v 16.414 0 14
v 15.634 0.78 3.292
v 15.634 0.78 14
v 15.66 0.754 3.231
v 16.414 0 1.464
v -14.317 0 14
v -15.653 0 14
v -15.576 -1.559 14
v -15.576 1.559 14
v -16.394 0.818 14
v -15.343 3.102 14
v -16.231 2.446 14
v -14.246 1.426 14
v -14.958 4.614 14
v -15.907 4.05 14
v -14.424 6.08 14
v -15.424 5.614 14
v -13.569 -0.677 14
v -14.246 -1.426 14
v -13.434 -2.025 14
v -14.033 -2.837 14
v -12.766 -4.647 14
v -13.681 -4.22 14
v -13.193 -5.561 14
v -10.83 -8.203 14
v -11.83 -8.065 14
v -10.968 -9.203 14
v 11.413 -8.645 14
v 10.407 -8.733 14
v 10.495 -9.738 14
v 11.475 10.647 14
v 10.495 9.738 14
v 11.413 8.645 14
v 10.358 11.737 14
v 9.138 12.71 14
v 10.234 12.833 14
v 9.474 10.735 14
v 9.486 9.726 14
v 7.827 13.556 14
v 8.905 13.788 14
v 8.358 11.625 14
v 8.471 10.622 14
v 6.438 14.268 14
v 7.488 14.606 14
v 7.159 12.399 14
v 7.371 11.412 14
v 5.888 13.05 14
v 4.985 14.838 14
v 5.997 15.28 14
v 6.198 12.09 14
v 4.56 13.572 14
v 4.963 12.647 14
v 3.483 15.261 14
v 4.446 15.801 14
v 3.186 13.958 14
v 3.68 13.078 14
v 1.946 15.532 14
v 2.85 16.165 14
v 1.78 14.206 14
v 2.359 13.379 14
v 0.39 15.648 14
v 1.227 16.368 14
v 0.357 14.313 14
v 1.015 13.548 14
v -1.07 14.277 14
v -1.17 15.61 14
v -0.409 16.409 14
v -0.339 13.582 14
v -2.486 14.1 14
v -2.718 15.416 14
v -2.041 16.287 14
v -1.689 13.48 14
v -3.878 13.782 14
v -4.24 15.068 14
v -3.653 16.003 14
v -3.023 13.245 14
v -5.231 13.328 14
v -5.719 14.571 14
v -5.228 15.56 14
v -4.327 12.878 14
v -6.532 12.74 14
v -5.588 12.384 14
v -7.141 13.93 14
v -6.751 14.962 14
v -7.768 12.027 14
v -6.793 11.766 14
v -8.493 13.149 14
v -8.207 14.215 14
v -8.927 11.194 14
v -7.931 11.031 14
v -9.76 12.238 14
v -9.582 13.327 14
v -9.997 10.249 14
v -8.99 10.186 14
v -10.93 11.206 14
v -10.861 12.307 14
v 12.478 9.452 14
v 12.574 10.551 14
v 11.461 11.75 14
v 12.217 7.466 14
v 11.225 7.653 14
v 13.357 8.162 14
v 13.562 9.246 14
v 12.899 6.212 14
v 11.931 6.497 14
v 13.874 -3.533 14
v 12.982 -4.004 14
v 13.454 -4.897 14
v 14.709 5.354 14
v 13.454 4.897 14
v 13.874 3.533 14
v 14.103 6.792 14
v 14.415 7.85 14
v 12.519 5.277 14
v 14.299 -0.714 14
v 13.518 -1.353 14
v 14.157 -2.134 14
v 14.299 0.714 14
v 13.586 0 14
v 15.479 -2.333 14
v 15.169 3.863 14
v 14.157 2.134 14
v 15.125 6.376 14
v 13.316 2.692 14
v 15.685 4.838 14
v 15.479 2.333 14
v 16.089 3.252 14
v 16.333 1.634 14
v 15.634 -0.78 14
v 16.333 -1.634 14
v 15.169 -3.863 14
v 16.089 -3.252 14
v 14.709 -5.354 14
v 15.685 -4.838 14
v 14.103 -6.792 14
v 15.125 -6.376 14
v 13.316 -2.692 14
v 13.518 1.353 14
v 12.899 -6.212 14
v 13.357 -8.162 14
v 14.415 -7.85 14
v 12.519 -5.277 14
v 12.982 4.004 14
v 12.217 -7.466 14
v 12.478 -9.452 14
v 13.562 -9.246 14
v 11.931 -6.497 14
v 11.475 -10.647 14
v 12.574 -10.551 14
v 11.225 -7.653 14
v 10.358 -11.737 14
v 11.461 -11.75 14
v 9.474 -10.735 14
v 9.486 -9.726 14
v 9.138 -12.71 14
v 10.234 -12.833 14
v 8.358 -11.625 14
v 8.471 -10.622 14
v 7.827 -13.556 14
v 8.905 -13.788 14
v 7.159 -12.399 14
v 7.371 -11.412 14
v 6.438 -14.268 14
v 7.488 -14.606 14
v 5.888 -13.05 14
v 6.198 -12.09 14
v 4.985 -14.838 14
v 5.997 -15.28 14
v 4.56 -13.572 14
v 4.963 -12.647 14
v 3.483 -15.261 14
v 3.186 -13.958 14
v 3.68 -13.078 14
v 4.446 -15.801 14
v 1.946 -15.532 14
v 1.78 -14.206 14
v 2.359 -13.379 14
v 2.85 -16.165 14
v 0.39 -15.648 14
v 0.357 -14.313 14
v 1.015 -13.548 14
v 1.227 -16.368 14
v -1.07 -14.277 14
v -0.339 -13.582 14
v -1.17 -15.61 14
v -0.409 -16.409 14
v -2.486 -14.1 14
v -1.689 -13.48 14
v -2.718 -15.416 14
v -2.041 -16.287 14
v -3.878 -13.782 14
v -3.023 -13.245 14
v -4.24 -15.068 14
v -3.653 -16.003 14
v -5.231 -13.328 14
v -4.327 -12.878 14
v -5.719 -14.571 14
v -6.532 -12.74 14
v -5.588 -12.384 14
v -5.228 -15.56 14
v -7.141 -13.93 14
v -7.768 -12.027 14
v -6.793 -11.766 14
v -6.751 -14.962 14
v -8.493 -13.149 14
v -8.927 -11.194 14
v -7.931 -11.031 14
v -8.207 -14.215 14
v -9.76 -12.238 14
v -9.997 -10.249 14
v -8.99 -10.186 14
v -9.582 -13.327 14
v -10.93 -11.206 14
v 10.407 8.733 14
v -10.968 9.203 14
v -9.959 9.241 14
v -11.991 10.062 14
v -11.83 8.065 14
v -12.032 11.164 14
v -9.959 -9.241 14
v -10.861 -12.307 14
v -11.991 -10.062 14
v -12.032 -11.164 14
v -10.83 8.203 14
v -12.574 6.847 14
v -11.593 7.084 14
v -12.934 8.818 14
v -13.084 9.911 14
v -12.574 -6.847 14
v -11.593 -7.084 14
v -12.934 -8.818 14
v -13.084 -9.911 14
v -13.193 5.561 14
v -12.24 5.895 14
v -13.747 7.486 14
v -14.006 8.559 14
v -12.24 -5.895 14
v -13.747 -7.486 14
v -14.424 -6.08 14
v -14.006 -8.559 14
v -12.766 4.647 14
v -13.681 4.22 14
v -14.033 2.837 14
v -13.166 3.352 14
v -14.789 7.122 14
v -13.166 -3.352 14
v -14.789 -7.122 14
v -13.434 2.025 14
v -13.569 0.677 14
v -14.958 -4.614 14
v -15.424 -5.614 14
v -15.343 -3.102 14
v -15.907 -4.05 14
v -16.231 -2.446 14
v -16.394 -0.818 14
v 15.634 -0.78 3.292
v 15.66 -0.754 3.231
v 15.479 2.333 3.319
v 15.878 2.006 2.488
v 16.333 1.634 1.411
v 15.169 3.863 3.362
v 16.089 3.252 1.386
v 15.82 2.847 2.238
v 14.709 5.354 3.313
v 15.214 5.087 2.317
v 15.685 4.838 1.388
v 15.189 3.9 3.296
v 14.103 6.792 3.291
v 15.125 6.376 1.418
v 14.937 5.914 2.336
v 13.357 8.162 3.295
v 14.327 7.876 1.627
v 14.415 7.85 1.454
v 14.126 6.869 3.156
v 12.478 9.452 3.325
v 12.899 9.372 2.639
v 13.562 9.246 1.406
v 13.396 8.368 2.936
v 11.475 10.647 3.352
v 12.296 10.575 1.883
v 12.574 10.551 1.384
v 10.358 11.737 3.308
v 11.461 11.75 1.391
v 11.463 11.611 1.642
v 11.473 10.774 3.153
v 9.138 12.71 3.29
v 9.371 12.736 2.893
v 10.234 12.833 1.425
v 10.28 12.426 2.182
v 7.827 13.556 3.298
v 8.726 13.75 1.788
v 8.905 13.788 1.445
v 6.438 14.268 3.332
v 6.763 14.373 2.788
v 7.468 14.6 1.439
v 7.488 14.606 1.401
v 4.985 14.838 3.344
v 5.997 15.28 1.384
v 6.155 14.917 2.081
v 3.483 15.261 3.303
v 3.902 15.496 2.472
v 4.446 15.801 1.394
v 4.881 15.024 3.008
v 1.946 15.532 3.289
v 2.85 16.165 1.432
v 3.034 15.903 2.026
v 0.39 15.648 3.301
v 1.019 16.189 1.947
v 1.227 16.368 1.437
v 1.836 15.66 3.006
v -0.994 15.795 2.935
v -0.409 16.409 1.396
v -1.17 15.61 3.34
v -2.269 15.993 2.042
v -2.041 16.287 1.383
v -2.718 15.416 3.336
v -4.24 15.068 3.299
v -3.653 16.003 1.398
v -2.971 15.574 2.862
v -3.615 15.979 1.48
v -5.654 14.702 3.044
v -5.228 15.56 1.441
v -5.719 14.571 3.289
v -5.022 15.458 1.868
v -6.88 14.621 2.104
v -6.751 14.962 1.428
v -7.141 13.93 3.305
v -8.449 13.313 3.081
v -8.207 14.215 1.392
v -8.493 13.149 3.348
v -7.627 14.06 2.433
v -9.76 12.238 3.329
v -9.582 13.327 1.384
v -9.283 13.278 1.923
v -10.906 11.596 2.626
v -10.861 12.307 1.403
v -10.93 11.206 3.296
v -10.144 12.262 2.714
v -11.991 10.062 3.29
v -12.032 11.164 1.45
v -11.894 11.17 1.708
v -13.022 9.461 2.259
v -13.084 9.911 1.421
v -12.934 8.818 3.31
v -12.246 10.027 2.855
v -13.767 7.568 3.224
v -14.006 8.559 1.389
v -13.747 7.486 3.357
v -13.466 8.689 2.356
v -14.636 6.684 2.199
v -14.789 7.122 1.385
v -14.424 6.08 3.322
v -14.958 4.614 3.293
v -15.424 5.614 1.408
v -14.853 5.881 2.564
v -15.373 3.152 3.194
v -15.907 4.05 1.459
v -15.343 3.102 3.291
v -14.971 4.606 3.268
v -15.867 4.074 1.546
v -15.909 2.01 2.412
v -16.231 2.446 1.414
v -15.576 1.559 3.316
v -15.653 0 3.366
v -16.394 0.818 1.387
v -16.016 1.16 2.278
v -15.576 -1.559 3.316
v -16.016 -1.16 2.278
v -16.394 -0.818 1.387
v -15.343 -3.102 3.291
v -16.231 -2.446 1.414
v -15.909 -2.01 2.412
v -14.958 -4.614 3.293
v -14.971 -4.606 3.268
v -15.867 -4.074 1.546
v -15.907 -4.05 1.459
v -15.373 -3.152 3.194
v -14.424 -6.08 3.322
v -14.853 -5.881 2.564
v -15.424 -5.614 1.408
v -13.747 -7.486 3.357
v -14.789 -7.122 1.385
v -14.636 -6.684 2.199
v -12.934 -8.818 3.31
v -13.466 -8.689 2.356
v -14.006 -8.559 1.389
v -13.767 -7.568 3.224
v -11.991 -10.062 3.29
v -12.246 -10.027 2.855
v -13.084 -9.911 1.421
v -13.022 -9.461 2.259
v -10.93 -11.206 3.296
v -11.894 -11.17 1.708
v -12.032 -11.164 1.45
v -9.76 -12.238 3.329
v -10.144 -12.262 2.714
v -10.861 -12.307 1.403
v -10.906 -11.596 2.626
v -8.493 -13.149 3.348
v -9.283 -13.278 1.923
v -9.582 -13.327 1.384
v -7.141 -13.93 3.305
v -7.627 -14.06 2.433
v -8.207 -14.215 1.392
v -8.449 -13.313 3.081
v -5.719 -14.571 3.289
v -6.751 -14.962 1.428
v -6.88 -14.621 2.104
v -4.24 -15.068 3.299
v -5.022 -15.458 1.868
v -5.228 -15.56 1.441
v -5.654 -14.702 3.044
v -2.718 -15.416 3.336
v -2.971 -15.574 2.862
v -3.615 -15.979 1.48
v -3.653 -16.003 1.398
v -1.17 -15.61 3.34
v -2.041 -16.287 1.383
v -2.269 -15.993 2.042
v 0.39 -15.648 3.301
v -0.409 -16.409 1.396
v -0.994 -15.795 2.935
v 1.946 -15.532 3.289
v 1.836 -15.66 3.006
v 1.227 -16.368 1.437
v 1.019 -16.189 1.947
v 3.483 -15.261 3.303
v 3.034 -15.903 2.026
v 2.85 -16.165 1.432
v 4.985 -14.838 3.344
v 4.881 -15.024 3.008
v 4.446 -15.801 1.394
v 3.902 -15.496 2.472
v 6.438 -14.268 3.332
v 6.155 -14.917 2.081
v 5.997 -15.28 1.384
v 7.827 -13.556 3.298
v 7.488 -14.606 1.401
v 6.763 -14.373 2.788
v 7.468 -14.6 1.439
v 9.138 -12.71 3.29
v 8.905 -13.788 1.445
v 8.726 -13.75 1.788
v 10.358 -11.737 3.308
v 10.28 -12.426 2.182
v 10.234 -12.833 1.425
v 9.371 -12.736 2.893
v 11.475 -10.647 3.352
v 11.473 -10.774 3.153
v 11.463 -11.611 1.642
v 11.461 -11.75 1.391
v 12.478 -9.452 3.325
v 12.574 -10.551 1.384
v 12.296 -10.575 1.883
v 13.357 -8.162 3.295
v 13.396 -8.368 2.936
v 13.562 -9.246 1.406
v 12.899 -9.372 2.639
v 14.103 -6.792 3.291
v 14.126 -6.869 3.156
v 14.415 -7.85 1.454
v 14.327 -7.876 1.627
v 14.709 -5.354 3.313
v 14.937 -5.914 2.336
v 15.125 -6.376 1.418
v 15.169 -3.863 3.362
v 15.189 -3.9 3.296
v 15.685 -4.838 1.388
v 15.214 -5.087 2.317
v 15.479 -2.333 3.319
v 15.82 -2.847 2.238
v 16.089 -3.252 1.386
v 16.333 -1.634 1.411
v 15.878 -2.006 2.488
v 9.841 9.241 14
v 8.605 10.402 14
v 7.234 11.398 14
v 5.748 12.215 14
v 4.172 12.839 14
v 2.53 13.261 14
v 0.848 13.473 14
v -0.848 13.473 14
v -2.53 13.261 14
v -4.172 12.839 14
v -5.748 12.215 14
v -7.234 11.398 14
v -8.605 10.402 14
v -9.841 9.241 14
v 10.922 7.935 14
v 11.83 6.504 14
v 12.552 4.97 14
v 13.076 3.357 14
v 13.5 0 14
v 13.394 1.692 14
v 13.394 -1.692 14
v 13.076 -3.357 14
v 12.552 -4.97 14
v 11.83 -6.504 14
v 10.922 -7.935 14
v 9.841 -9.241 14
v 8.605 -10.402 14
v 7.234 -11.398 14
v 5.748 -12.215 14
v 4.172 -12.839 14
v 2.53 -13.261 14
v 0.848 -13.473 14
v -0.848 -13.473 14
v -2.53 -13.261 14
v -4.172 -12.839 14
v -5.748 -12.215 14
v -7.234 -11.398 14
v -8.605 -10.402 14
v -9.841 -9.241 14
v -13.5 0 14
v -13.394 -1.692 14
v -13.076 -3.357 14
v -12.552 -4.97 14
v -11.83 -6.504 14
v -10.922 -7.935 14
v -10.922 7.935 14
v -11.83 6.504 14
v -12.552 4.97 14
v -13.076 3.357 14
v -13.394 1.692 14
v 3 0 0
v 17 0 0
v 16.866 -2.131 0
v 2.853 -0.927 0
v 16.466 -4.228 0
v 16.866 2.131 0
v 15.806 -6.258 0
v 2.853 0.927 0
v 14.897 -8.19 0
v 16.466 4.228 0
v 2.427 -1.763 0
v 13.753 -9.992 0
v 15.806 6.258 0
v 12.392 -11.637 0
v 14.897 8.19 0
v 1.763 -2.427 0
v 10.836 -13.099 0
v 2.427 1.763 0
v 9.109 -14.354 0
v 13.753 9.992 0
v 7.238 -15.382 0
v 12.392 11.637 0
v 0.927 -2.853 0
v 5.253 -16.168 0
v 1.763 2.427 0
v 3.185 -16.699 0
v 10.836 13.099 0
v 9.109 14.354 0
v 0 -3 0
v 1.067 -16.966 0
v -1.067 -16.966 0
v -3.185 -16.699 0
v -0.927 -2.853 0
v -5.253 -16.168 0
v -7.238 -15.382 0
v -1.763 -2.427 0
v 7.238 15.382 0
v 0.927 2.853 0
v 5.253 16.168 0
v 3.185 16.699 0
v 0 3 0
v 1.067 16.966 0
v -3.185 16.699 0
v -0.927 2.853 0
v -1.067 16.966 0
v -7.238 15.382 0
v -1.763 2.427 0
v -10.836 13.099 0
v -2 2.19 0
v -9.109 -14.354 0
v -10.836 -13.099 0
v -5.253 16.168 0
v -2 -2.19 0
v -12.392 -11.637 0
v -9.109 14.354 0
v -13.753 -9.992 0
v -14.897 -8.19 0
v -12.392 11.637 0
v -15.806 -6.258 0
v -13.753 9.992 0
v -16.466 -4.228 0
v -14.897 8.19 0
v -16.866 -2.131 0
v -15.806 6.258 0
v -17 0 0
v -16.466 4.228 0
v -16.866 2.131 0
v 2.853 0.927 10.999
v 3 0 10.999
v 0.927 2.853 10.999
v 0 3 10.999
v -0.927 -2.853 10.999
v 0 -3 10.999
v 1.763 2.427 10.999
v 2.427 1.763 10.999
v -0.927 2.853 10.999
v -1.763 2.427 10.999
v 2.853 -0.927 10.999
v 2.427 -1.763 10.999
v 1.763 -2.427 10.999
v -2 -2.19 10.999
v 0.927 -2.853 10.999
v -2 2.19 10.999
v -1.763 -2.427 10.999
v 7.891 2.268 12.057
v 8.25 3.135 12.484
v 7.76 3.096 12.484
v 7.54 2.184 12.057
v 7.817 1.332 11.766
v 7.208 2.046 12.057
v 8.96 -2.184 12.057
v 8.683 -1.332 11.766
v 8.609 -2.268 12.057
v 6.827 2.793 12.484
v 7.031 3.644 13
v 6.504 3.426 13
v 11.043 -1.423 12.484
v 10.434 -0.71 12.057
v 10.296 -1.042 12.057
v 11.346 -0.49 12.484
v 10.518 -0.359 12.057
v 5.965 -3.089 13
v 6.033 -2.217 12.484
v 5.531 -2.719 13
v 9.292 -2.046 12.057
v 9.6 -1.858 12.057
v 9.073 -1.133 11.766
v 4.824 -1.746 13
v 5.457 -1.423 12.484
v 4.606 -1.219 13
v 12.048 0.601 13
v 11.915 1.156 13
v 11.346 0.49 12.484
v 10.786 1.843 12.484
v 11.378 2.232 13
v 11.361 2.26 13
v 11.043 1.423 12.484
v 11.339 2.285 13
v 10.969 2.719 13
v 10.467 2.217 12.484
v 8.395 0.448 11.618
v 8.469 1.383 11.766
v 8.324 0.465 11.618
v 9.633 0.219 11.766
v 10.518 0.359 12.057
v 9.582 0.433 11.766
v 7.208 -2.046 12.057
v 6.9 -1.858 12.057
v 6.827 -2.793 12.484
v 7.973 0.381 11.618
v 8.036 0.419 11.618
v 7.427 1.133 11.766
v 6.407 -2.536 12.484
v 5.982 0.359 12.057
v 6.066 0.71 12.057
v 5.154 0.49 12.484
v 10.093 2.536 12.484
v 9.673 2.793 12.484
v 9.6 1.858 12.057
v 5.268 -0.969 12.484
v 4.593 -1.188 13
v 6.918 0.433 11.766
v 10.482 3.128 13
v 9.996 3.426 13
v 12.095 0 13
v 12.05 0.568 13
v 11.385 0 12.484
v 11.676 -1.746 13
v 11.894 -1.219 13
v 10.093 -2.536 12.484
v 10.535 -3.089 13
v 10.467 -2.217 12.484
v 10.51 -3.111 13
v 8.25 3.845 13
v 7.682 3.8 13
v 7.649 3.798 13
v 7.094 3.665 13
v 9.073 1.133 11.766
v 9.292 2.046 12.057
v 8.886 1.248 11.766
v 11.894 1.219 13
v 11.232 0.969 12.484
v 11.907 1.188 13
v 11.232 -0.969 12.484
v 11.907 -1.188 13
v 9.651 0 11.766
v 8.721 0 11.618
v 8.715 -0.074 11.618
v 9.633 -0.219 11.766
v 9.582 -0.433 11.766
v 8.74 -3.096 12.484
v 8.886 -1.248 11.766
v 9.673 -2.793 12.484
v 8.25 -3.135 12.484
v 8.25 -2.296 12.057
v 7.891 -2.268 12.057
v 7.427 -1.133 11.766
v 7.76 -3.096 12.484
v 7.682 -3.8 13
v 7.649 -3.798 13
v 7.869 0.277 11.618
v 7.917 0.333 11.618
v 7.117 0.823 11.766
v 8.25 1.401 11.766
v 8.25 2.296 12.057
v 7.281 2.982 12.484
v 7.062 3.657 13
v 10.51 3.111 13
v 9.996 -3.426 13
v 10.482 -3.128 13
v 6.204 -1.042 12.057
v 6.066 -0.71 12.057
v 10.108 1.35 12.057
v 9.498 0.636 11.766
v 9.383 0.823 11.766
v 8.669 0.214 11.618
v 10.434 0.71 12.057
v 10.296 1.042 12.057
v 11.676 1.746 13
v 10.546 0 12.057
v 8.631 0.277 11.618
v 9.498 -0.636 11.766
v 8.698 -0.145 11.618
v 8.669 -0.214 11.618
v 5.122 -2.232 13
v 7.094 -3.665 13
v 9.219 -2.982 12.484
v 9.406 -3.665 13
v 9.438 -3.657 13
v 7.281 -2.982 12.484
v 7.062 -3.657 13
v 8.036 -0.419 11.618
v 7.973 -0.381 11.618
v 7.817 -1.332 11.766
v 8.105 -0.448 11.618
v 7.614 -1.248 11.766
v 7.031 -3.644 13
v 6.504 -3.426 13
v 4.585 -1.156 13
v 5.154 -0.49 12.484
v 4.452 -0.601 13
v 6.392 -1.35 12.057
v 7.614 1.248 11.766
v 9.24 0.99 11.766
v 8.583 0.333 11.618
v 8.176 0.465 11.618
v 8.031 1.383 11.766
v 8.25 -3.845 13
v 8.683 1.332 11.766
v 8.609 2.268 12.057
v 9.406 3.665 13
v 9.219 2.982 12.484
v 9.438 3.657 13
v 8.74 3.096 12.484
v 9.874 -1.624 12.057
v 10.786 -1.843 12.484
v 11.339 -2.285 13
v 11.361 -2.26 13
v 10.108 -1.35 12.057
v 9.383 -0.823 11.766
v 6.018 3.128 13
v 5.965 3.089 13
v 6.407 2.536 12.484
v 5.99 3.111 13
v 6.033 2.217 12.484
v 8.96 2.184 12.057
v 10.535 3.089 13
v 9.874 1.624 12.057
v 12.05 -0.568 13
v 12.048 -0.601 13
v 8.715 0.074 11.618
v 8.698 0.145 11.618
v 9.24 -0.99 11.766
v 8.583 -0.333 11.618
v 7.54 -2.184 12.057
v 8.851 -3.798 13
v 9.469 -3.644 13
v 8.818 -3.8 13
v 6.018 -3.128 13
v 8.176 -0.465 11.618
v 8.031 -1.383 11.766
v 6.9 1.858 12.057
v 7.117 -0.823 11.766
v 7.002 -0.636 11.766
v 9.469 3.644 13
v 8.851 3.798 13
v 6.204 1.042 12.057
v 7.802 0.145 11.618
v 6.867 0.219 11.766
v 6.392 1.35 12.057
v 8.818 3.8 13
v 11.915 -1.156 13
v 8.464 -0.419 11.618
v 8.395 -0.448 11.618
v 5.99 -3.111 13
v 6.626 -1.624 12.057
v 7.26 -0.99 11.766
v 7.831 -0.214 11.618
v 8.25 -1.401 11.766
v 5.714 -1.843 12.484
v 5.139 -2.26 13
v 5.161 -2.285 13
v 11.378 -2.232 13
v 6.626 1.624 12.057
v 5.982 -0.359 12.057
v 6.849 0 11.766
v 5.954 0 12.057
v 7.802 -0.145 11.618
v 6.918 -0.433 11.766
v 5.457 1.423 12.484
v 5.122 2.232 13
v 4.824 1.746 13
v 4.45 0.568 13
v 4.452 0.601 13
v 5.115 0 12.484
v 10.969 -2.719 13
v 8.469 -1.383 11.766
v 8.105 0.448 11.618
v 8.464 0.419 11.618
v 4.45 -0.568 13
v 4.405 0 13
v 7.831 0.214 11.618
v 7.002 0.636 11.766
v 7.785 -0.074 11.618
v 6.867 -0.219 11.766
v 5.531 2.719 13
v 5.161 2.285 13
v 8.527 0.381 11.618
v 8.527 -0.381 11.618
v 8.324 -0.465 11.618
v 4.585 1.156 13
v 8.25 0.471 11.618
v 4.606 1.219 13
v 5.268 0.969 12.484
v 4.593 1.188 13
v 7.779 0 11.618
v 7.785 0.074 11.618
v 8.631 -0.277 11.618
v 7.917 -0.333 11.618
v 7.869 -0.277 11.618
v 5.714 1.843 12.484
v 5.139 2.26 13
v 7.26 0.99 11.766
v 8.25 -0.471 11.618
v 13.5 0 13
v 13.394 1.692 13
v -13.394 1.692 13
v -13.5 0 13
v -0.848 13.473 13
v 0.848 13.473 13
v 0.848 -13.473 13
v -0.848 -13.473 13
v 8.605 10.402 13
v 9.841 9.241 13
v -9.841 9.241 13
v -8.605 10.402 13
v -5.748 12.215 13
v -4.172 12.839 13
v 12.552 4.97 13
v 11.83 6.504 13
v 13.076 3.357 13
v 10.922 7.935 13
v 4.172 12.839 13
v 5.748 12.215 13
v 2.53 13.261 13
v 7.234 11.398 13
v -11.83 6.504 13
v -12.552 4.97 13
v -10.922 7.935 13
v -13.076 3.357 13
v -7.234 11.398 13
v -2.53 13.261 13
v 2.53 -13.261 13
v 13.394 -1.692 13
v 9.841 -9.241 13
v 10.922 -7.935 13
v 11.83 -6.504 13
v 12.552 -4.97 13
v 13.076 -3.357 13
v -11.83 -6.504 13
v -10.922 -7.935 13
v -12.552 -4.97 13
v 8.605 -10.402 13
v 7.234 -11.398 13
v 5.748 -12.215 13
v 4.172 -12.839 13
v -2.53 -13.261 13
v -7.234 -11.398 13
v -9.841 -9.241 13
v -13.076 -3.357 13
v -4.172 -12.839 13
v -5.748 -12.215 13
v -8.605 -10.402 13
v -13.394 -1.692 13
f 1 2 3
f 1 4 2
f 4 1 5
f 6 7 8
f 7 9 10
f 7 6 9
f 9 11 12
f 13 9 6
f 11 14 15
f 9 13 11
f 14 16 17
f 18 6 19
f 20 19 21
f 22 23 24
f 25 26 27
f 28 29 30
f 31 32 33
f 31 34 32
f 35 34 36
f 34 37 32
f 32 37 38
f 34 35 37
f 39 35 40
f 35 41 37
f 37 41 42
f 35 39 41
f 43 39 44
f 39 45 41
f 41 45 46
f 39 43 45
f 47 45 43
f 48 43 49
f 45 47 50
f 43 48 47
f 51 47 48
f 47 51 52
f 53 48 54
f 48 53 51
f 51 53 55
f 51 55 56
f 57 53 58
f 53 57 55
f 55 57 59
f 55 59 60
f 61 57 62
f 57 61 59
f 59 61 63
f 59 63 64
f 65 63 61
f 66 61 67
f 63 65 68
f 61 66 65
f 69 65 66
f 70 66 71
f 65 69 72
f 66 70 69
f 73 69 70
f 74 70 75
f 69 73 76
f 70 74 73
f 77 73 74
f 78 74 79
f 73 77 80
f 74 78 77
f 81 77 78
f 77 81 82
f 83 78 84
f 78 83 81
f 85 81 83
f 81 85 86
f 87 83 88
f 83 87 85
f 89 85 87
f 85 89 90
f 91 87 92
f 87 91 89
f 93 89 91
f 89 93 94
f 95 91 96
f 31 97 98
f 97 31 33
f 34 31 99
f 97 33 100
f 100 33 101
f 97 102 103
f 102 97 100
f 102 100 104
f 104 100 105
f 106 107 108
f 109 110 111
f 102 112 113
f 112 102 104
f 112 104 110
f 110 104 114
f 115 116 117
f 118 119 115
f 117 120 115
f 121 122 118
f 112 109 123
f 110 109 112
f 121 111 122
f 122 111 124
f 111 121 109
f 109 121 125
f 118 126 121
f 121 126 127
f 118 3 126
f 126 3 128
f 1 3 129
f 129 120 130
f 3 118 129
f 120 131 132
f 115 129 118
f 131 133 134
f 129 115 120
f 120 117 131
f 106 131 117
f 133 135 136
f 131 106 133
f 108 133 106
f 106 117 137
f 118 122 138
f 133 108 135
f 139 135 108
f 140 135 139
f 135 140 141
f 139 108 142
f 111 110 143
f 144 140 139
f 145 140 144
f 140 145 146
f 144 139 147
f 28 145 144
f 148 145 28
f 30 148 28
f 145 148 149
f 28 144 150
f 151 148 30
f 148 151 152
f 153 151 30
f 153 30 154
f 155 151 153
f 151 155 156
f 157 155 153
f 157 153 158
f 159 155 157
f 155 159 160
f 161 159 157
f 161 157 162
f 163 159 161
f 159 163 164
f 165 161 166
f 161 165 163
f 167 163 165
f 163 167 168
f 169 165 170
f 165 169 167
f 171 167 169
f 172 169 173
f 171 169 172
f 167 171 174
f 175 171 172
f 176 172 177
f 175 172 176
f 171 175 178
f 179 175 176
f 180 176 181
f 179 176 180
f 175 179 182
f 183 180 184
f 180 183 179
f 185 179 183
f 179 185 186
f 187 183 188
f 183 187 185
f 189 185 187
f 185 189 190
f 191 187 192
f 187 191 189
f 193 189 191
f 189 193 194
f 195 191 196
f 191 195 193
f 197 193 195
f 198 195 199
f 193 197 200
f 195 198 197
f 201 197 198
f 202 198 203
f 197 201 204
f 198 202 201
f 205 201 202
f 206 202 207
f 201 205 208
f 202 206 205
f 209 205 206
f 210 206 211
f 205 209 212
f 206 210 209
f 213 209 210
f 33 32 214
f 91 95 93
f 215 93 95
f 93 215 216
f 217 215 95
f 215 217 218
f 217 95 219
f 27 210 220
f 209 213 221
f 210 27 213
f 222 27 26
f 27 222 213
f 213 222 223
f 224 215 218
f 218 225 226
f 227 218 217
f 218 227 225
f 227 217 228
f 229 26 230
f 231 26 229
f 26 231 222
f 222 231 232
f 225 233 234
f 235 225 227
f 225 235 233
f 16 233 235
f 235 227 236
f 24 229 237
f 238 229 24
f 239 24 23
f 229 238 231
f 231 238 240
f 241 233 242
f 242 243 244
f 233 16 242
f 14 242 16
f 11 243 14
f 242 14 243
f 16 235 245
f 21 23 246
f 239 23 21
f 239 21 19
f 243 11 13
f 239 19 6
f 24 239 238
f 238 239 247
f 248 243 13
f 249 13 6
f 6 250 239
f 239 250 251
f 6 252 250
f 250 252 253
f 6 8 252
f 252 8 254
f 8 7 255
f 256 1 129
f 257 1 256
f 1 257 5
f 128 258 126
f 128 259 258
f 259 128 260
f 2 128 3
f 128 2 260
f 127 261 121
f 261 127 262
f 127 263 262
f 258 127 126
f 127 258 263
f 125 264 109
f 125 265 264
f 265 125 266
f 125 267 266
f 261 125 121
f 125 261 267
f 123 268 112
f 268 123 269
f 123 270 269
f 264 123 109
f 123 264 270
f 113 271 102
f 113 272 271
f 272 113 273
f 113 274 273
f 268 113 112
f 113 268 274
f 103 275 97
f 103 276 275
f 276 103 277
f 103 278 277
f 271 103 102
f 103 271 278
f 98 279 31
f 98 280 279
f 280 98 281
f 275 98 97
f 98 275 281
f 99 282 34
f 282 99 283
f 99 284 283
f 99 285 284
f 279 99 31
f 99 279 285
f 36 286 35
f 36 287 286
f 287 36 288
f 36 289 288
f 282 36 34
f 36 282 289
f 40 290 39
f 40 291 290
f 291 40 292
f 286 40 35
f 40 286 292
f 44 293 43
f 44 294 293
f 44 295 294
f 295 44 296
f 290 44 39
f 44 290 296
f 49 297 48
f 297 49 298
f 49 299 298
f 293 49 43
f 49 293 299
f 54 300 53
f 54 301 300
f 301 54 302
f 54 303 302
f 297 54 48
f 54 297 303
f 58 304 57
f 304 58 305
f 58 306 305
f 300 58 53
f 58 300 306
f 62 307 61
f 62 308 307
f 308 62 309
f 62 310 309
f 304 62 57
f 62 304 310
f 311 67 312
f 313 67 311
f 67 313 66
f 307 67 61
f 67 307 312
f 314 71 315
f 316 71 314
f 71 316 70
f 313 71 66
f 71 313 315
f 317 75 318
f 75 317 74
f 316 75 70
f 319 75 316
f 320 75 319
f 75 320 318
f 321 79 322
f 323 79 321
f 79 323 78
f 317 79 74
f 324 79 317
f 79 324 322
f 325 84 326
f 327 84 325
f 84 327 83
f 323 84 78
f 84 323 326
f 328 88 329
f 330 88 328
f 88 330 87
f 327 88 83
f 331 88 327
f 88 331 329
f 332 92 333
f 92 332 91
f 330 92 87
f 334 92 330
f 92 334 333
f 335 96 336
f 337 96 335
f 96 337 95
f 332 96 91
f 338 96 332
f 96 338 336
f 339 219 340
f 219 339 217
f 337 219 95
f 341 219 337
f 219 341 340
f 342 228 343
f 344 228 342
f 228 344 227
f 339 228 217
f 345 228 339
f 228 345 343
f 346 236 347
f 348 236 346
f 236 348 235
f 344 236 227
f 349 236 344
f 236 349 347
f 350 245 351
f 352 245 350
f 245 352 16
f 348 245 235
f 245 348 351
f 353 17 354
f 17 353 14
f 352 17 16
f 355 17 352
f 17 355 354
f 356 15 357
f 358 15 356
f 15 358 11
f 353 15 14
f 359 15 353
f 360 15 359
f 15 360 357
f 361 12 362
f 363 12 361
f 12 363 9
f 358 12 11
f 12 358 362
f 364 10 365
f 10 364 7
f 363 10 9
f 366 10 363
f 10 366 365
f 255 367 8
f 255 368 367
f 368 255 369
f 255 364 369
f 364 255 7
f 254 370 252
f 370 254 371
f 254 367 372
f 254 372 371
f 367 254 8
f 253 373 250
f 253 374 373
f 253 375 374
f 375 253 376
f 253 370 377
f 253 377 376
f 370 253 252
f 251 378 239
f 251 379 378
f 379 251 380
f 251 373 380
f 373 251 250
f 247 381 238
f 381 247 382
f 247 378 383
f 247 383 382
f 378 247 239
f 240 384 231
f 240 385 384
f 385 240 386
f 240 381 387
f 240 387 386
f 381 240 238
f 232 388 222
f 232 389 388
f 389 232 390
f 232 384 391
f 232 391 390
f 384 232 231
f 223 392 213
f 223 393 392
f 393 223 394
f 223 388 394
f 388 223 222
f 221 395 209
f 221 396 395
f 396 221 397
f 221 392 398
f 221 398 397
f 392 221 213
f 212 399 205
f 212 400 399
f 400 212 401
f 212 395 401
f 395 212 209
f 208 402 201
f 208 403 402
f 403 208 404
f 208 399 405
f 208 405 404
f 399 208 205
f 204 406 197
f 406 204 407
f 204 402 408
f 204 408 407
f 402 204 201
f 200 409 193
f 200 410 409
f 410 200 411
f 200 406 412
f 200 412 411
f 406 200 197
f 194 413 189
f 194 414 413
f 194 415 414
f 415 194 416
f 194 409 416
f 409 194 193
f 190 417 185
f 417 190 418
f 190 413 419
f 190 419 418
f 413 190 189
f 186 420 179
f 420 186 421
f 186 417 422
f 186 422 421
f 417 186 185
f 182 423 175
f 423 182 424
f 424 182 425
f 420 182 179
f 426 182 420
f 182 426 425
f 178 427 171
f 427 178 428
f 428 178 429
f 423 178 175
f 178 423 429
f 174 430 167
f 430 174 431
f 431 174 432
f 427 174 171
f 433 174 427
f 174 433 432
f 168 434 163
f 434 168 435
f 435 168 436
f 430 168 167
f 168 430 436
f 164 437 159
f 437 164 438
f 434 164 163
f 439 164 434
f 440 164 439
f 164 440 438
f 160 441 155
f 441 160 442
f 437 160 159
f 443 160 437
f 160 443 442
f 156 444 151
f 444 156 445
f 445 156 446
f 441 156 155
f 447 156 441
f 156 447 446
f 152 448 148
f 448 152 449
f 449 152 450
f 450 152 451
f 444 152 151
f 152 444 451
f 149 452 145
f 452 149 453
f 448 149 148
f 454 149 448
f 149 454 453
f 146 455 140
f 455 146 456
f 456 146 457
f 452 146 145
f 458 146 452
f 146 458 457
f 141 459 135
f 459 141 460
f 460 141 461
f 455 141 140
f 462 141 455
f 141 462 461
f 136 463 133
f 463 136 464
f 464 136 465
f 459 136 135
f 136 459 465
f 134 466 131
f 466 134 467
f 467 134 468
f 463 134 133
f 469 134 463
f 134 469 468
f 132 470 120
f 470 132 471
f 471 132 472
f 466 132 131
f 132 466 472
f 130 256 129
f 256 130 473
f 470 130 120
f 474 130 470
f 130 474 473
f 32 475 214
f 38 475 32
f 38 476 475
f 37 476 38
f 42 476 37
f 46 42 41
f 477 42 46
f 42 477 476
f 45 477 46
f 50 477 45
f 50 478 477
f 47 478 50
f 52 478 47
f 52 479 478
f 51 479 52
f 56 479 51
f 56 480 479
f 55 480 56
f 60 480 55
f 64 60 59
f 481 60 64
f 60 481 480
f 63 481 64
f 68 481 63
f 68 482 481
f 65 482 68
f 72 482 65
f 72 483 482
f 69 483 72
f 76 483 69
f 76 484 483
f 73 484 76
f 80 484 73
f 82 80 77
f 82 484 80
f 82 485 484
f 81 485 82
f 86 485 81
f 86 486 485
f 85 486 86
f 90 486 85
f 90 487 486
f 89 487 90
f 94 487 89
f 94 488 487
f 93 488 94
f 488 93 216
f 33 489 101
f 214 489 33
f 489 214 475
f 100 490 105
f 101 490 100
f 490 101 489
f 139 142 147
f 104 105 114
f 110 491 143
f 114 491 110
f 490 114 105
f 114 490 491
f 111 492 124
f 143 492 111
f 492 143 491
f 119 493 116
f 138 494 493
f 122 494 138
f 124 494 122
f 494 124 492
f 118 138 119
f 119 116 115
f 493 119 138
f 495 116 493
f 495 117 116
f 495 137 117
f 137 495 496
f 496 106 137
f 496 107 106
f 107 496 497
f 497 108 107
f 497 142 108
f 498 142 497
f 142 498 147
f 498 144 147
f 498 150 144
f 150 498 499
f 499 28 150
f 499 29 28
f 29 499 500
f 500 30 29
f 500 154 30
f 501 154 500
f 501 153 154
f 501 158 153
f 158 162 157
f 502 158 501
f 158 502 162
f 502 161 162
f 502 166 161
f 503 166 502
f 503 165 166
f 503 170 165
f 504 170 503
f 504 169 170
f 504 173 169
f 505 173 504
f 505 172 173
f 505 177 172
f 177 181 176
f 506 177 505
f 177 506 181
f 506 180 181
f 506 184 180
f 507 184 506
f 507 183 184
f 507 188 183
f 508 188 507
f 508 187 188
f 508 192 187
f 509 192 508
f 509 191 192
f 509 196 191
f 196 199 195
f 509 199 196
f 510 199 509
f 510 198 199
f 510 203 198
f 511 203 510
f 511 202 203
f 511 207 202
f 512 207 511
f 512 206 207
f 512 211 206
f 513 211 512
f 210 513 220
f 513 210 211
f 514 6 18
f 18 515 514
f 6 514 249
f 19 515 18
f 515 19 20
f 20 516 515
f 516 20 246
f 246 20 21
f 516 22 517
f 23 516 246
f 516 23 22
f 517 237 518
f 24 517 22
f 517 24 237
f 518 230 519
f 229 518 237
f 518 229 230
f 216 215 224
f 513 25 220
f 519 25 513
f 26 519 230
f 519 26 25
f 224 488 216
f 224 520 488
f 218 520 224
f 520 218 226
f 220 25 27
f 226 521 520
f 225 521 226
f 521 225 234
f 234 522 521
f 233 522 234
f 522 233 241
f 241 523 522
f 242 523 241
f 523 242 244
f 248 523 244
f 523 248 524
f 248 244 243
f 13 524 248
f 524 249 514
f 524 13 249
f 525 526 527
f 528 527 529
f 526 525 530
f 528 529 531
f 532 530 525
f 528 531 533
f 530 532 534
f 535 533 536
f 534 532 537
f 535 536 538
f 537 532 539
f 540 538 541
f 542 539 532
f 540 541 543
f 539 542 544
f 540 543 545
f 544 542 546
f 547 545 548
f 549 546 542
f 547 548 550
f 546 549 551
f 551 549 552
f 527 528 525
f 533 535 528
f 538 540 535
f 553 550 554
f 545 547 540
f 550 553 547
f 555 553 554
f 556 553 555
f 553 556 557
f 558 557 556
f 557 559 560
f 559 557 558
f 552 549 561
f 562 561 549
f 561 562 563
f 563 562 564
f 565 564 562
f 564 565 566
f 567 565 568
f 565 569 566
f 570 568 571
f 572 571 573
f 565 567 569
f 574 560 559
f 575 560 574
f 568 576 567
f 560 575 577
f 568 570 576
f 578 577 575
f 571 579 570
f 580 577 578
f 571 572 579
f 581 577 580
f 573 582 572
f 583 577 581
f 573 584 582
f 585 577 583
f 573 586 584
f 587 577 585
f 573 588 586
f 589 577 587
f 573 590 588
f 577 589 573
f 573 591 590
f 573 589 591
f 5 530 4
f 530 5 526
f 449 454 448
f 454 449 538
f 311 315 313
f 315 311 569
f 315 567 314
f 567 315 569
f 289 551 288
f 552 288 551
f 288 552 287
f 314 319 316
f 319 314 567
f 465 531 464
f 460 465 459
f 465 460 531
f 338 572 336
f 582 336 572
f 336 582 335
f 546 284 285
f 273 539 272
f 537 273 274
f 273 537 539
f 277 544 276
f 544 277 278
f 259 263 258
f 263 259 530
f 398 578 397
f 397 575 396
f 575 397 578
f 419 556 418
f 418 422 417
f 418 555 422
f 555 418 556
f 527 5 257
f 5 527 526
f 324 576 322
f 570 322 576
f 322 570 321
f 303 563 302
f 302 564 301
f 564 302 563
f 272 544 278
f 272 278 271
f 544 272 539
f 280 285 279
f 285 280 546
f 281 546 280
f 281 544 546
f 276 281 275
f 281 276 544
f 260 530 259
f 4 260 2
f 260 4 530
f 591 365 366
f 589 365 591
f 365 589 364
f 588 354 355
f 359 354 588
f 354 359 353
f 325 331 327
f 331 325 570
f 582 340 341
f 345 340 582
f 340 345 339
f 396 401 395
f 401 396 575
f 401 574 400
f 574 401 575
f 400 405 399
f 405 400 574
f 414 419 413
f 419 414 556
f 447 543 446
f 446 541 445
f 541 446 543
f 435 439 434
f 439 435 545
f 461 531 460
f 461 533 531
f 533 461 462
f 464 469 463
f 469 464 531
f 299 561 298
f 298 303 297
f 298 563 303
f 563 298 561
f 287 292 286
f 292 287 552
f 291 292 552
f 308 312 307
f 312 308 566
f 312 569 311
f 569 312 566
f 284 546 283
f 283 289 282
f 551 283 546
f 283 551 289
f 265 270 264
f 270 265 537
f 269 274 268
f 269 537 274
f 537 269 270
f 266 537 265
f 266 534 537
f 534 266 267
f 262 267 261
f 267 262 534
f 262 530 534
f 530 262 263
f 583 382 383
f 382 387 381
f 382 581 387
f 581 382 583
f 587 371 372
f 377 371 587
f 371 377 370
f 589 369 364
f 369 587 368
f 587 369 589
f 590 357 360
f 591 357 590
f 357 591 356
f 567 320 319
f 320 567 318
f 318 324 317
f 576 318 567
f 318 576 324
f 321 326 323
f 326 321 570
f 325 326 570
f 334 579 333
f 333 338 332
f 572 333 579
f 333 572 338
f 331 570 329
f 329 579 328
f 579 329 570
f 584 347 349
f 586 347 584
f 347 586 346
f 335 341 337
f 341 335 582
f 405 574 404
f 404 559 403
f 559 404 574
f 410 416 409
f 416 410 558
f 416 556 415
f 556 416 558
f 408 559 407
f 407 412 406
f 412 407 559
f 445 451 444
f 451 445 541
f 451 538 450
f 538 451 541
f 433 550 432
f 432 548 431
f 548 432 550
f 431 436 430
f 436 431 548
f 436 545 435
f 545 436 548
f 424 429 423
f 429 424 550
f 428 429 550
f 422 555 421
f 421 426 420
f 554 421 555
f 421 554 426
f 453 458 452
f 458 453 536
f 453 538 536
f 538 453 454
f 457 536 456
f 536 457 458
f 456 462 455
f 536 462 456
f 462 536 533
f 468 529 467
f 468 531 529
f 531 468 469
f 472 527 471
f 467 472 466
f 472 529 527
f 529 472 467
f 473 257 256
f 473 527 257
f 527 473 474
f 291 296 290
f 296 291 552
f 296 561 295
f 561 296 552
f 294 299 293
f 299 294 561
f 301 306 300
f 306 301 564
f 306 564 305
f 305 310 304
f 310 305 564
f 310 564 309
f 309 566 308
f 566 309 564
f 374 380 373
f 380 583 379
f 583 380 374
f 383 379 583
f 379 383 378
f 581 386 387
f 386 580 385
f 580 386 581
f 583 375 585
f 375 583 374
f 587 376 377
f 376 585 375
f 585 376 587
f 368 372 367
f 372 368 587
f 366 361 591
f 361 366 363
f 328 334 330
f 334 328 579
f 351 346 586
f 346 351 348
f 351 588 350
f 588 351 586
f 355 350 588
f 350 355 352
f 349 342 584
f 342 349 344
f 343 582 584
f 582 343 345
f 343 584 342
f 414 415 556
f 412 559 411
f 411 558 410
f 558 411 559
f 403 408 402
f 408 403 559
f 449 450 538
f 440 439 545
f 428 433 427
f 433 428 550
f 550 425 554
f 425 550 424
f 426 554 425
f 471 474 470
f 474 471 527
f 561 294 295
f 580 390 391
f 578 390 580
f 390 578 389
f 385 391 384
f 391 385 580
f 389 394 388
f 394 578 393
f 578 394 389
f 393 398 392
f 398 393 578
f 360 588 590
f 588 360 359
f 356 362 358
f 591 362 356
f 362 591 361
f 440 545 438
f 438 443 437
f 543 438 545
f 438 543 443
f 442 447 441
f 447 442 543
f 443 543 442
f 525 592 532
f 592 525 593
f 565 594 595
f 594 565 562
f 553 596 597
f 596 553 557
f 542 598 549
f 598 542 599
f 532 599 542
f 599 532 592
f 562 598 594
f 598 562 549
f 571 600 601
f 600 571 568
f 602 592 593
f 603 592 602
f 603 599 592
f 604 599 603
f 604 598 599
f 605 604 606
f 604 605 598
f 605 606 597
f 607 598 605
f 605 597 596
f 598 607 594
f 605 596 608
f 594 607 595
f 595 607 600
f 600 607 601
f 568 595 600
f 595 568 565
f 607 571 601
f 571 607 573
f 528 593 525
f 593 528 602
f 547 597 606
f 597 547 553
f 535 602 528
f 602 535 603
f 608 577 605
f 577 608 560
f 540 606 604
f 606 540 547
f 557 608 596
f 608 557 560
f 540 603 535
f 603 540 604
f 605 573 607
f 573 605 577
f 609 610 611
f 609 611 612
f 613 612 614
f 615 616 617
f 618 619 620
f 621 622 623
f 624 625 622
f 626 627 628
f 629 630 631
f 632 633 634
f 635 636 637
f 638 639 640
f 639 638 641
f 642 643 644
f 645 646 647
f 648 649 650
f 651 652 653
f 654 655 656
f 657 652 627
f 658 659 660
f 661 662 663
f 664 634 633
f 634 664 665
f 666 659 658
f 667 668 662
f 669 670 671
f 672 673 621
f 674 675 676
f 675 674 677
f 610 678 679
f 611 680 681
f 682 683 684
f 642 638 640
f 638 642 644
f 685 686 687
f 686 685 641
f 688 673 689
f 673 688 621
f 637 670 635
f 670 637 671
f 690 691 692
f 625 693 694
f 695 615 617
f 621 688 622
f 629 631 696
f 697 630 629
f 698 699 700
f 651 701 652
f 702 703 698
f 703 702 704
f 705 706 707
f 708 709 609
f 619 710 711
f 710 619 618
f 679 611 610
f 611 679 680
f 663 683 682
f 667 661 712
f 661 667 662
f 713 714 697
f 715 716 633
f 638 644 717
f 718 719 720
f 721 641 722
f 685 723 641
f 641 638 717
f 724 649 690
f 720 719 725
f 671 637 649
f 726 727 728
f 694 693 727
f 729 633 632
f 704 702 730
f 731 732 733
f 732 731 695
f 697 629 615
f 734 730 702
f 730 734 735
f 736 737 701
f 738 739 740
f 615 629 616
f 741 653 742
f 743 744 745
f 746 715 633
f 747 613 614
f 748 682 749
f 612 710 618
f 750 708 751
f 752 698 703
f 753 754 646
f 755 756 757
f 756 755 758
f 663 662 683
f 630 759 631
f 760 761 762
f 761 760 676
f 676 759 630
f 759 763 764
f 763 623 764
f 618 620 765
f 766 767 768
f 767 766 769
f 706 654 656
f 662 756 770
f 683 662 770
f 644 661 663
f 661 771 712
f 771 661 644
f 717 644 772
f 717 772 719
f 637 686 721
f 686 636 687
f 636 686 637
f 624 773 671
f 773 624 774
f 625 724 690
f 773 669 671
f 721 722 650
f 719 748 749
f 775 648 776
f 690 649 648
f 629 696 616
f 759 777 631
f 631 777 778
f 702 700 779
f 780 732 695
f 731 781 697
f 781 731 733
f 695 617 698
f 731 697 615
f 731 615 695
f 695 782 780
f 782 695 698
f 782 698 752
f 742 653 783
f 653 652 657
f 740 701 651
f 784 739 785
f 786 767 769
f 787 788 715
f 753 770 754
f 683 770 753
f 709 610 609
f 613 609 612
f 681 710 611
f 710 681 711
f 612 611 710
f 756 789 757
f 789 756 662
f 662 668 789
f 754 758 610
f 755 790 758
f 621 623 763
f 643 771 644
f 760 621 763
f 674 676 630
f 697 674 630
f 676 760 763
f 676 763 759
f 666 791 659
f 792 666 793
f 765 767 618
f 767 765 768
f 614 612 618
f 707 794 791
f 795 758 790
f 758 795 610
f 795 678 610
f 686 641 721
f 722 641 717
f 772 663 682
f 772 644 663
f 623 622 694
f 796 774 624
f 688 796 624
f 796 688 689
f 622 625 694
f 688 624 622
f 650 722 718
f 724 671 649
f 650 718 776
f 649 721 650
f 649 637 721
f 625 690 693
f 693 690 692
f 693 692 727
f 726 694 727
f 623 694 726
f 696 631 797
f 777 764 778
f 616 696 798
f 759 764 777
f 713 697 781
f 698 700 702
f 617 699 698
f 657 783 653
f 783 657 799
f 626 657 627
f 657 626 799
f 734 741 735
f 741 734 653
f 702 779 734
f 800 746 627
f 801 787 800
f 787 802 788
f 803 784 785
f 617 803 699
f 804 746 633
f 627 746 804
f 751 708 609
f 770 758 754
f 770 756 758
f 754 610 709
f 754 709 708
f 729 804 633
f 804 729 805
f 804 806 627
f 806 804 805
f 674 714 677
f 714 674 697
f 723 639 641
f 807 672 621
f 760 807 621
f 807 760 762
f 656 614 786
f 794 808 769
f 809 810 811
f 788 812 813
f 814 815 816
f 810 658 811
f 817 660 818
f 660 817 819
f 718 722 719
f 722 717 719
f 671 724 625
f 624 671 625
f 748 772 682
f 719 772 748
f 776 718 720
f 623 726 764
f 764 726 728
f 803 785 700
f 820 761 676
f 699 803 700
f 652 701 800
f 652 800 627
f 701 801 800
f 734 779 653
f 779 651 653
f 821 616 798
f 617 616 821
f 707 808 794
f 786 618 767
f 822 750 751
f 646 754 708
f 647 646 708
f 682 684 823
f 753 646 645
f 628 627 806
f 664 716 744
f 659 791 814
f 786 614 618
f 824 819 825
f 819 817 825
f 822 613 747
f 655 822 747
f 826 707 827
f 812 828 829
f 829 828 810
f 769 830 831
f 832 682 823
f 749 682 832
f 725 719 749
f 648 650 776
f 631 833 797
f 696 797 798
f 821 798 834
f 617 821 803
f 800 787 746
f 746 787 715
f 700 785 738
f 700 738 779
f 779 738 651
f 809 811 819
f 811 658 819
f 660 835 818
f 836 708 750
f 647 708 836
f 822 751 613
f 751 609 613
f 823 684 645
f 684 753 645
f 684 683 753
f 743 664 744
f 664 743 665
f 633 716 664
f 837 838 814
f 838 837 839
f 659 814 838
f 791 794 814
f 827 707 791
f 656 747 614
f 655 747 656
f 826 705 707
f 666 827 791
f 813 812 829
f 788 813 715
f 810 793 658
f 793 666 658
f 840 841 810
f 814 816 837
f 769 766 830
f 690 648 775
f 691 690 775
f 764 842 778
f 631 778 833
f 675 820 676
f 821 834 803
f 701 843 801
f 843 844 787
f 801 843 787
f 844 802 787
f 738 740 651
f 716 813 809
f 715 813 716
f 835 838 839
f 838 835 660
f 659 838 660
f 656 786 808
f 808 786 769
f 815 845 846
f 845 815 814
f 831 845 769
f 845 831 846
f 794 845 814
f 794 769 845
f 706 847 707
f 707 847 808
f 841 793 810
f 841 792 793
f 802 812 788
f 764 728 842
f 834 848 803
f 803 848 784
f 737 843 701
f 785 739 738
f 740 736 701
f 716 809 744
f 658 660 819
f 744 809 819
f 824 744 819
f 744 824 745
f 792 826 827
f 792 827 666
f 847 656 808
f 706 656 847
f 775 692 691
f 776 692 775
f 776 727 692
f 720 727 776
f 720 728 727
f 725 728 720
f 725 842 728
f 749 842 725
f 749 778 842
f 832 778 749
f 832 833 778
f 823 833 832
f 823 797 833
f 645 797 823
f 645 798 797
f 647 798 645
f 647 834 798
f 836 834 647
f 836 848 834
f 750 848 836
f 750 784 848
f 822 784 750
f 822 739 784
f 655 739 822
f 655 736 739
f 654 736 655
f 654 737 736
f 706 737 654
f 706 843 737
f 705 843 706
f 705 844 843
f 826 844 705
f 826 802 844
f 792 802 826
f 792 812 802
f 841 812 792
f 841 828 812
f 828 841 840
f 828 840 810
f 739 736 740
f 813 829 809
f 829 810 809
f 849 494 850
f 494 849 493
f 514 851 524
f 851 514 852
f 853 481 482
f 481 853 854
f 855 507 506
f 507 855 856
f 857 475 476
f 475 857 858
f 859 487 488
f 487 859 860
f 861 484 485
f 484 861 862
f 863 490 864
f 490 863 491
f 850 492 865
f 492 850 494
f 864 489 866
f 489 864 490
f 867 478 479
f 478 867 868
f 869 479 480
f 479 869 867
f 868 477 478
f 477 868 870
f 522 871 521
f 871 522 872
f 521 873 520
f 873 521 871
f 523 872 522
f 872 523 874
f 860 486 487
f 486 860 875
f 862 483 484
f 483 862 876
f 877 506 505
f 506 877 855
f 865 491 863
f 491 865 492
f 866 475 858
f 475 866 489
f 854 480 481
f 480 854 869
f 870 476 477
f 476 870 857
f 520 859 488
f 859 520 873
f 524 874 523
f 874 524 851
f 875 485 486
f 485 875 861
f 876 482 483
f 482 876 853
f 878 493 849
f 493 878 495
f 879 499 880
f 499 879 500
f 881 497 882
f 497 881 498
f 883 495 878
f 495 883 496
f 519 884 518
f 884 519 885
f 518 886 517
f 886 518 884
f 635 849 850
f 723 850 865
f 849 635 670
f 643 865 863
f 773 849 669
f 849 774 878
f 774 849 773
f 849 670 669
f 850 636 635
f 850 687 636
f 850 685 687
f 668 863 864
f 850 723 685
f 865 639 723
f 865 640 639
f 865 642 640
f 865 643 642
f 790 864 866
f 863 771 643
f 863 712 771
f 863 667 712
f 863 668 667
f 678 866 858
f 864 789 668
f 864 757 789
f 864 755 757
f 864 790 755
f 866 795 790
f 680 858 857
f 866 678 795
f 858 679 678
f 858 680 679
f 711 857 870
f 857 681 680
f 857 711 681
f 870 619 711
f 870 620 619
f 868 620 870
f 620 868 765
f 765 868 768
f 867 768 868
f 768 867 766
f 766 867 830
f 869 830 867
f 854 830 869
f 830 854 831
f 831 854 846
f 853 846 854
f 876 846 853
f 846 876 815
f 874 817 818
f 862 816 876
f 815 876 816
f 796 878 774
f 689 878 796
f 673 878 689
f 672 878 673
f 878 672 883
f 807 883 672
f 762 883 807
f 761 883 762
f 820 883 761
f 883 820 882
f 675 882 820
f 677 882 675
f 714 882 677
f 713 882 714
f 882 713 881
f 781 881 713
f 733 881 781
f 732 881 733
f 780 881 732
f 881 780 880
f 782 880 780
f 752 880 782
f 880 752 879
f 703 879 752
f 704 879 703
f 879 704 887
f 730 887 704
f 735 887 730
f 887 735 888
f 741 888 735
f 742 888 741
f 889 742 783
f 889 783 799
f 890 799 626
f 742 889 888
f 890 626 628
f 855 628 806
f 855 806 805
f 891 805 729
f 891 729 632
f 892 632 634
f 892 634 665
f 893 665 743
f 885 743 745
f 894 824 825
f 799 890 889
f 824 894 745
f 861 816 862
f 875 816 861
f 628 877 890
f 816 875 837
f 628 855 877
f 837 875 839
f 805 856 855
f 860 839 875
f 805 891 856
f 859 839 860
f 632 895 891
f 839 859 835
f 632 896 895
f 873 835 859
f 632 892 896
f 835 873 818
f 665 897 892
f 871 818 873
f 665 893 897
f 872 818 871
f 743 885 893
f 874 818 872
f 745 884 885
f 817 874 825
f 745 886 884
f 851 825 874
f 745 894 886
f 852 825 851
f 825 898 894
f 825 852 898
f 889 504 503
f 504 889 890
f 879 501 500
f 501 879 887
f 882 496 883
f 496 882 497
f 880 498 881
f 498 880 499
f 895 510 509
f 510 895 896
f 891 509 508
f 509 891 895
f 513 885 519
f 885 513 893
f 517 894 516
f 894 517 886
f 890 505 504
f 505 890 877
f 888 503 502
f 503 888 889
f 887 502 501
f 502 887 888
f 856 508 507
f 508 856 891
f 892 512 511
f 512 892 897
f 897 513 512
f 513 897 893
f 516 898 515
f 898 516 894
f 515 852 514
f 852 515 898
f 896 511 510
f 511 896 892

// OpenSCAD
//////////////////////////
// Customizable settings
//////////////////////////


// Diameter of the hole on the bottom (in mm).
HoleDiameter = 6;

// Depth of the hole in the bottom (in mm).  If you want the hole to go all the way through then set this to a number larger than the total height of the object.
HoleDepth = 11;

// If you want a D-shaped hole, set this to the thickness of the flat side (in mm).  Larger values for the flat make the hole smaller.
HoleFlatThickness = 1;

// Height (in mm).  If dome cap is selected, it is not included in height.  The shaft length is also not counted.
KnobHeight = 14;

// Diameter of base of round part of knob (in mm).  (Knurled ridges are not included in this measurement.)
KnobDiameter = 30;

// Shape of top of knob.  "Recessed" type can be painted.
CapType = 1;	// [0:Flat, 1:Recessed, 2:Dome]

// Do you want a large timer-knob style pointer?
TimerKnob=0;	// [0:No, 1:Yes]

// Would you like a divot on the top to indicate direction?
Pointer1 = 1;	// [0:No, 1:Yes]

// Would you like a line (pointer) on the front to indicate direction?
Pointer2 = 0;	// [0:No, 1:Yes]

// Do you want finger ridges around the knob?
Knurled = 1;	// [0:No, 1:Yes]

// 0 = A cylindrical knob, any other value will taper the knob.
TaperPercentage = 0;		// [0:0%, 10:10%, 20:20%, 30:30%, 40:40%, 50:50%]

// Width of "dial" ring (in mm).  Set to zero if you don't want the ring.
RingWidth = 2;

// The number of markings on the dial.  Set to zero if you don't want markings.  (RingWidth must be non-zero.)
RingMarkings = 0;

// diameter of the hole for the setscrew (in mm).  If you don't need a hole, set this to zero.
ScrewHoleDiameter = 0;

// Length of the shaft on the bottom of the knob (in mm).  If you don't want a shaft, set this value to zero.
ShaftLength = 0;

// Diameter of the shaft on the bottom of the knob (in mm).  (ShaftLength must be non-zero.)
ShaftDiameter = 10;

// Would you like a notch in the shaft?  It can be used for a press-on type knob (rather than using a setscrew).  (ShaftLength must be non-zero.)
NotchedShaft = 0;	// [0:No, 1:Yes]



//////////////////////////
//Advanced settings
//////////////////////////

RingThickness = 5*1;
DivotDepth = 1*1;
MarkingWidth = 1.5*1;
DistanceBetweenKnurls = 1.5*1;
TimerKnobConst = 1.8*1;



//////////////////////////
//Calculations
//////////////////////////

PI=3.14159265*1;
KnobMajorRadius = KnobDiameter/2;
KnobMinorRadius = KnobDiameter/2 * (1 - TaperPercentage/100);
KnobRadius = KnobMinorRadius + (KnobMajorRadius-KnobMinorRadius)/2;
KnobCircumference = PI*KnobDiameter;
Knurls = round(KnobCircumference/DistanceBetweenKnurls);
Divot=CapType;

TaperAngle=asin(KnobHeight / (sqrt(pow(KnobHeight, 2) +
		pow(KnobMajorRadius-KnobMinorRadius,2)))) - 90;

DivotRadius = KnobMinorRadius*.4;


union()
{
translate([0, 0, (ShaftLength==0)? 0 : ShaftLength-0.001])
difference()
{
union()
{
	// Primary knob cylinder
	cylinder(h=KnobHeight, r1=KnobMajorRadius, r2=KnobMinorRadius,
			$fn=50);
	
	if (Knurled)
		for (i=[0 : Knurls-1])
			rotate([0, 0, i * (360/Knurls)])
				translate([KnobRadius, 0, KnobHeight/2])
					rotate([0, TaperAngle, 0]) rotate([0, 0, 45])
						cube([2, 2, KnobHeight+.001], center=true);

 	if (RingMarkings>0)
		for (i=[0 : RingMarkings-1])
			rotate([0, 0, i * (360/RingMarkings)])
				translate([KnobMajorRadius + RingWidth/2, 0, 1])
					cube([RingWidth*.5, MarkingWidth, 2], center=true);		
	
	if (Pointer2==1)
		translate([KnobRadius, 0, KnobHeight/2-2])
			rotate([0, TaperAngle, 0])
				cube([8, 3, KnobHeight], center=true);		

	if (RingWidth>0)
		translate([0, 0, RingThickness/2])
			cylinder(r1=KnobMajorRadius + RingWidth, r2=KnobMinorRadius,
					h=RingThickness, $fn=50, center=true);

	if (Divot==2)
		translate([0, 0, KnobHeight])
			difference()
			{
				scale([1, 1, 0.5])
					sphere(r=KnobMinorRadius, $fn=50, center=true);

				translate([0, 0, 0-(KnobMinorRadius+.001)])
					cube([KnobMinorRadius*2.5, KnobMinorRadius*2.5,
							KnobMinorRadius*2], center=true);
			}

	if (TimerKnob==1) intersection()
		{
			translate([0, 0, 0-(KnobDiameter*TimerKnobConst) + KnobHeight])
			sphere(r=KnobDiameter*TimerKnobConst, $fn=50, center=true);		
	
			translate([0-(KnobDiameter*TimerKnobConst)*0.1, 0,
					KnobHeight/2])
				scale([1, 0.5, 1])
					cylinder(h=KnobHeight, r=(KnobDiameter*TimerKnobConst) *
							0.8, $fn=3, center=true);
		}
}

// Pointer1: Offset hemispherical divot
if (Pointer1==1)
	translate([KnobMinorRadius*.55, 0, KnobHeight + DivotRadius*.6])
		sphere(r=DivotRadius, $fn=40);

// Divot1: Centered cylynrical divot
if (Divot==1)
	translate([0, 0, KnobHeight])
		cylinder(h=DivotDepth*2, r=KnobMinorRadius-1.5, $fn=50,
				center=true);

if (ShaftLength==0)
{
	// Hole for shaft
	translate([0, 0, HoleDepth/2 - 0.001])
		difference()
		{
			cylinder(r=HoleDiameter/2, h=HoleDepth, $fn=20,
					center=true);
	
			// Flat for D-shaped hole
			translate([(0-HoleDiameter)+HoleFlatThickness, 0, 0])
				cube([HoleDiameter, HoleDiameter, HoleDepth+.001],
						center=true);
		}
	
	// Hole for setscrew
	if (ScrewHoleDiameter>0)
		translate([0 - (KnobMajorRadius+RingWidth+1)/2, 0,
				HoleDepth/2])
			rotate([0, 90, 0])
			cylinder(h=(KnobMajorRadius+RingWidth+1),
					r=ScrewHoleDiameter/2, $fn=20, center=true);
}

// Make sure bottom ends at z=0
translate([0, 0, -10])
	cube([(KnobMajorRadius+RingWidth) * 3,
			(KnobMajorRadius+RingWidth) * 3, 20], center=true);
}

if (ShaftLength>0)
	difference()
	{
		translate([0, 0, ShaftLength/2])
			cylinder(h=ShaftLength, r=ShaftDiameter/2, $fn=20,
					center=true);

		if (NotchedShaft==1)
		{
			cube([HoleDiameter/2, ShaftDiameter*2, ShaftLength],
					center=true);
		}

		// Hole for shaft
		translate([0, 0, HoleDepth/2 - 0.001])
			difference()
			{
				cylinder(r=HoleDiameter/2, h=HoleDepth, $fn=20,
						center=true);
		
				// Flat for D-shaped hole
				translate([(0-HoleDiameter)+HoleFlatThickness, 0, 0])
					cube([HoleDiameter, HoleDiameter, HoleDepth+.001],
							center=true);
			}
		
		// Hole for setscrew
		if (ScrewHoleDiameter>0)
			translate([0 - (KnobMajorRadius+RingWidth+1)/2, 0,
					HoleDepth/2])
				rotate([0, 90, 0])
				cylinder(h=(KnobMajorRadius+RingWidth+1),
						r=ScrewHoleDiameter/2, $fn=20, center=true);
	}
}
